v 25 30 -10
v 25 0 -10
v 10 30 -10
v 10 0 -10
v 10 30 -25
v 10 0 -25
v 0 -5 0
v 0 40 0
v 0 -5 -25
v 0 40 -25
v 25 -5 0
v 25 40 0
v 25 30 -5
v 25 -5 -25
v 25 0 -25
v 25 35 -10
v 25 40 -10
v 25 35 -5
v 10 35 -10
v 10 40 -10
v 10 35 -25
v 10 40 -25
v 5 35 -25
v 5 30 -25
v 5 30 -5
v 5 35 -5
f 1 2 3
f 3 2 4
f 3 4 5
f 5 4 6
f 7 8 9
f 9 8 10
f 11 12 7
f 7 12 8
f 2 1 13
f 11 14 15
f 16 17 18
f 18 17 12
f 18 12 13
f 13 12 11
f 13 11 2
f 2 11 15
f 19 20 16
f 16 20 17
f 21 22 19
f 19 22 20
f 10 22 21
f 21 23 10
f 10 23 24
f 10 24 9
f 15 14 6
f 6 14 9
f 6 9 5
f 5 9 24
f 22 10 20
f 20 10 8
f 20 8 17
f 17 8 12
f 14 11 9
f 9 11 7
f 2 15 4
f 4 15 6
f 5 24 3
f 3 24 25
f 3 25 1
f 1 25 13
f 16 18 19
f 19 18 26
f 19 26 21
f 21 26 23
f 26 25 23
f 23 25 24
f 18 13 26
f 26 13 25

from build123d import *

# Parameters (mm, degrees)
EXTRUDE_1_DEPTH     = 40
SKETCH_2_W          = 25
SKETCH_2_H          = 25
EXTRUDE_2_DEPTH     = 5
SKETCH_3_W          = 20
SKETCH_3_H          = 5
CUT_EXTRUDE_1_DEPTH = 20


with BuildPart() as part:
    # 스케치1 → 보스-돌출1 (new body)
    with BuildSketch(Plane(origin=(0, 0, 0), x_dir=(1, 0, 0), z_dir=(0, 1, 0))):
        Polygon((0, 0), (25, 0), (25, 10), (10, 10), (10, 25), (0, 25), align=None)
    extrude(amount=EXTRUDE_1_DEPTH)

    # 스케치2 → 보스-돌출2 (add)
    with BuildSketch(Plane.XZ):
        with Locations((12.5, -12.5)):
            Rectangle(SKETCH_2_W, SKETCH_2_H)
    extrude(amount=EXTRUDE_2_DEPTH)

    # 스케치3 → 컷-돌출1 (cut)
    with BuildSketch(Plane(origin=(0, 0, -25), x_dir=(-1, 0, 0), z_dir=(0, 0, -1))):
        with Locations((-15, 32.5)):
            Rectangle(SKETCH_3_W, SKETCH_3_H)
    extrude(amount=-CUT_EXTRUDE_1_DEPTH, mode=Mode.SUBTRACT)


solid = part.part
